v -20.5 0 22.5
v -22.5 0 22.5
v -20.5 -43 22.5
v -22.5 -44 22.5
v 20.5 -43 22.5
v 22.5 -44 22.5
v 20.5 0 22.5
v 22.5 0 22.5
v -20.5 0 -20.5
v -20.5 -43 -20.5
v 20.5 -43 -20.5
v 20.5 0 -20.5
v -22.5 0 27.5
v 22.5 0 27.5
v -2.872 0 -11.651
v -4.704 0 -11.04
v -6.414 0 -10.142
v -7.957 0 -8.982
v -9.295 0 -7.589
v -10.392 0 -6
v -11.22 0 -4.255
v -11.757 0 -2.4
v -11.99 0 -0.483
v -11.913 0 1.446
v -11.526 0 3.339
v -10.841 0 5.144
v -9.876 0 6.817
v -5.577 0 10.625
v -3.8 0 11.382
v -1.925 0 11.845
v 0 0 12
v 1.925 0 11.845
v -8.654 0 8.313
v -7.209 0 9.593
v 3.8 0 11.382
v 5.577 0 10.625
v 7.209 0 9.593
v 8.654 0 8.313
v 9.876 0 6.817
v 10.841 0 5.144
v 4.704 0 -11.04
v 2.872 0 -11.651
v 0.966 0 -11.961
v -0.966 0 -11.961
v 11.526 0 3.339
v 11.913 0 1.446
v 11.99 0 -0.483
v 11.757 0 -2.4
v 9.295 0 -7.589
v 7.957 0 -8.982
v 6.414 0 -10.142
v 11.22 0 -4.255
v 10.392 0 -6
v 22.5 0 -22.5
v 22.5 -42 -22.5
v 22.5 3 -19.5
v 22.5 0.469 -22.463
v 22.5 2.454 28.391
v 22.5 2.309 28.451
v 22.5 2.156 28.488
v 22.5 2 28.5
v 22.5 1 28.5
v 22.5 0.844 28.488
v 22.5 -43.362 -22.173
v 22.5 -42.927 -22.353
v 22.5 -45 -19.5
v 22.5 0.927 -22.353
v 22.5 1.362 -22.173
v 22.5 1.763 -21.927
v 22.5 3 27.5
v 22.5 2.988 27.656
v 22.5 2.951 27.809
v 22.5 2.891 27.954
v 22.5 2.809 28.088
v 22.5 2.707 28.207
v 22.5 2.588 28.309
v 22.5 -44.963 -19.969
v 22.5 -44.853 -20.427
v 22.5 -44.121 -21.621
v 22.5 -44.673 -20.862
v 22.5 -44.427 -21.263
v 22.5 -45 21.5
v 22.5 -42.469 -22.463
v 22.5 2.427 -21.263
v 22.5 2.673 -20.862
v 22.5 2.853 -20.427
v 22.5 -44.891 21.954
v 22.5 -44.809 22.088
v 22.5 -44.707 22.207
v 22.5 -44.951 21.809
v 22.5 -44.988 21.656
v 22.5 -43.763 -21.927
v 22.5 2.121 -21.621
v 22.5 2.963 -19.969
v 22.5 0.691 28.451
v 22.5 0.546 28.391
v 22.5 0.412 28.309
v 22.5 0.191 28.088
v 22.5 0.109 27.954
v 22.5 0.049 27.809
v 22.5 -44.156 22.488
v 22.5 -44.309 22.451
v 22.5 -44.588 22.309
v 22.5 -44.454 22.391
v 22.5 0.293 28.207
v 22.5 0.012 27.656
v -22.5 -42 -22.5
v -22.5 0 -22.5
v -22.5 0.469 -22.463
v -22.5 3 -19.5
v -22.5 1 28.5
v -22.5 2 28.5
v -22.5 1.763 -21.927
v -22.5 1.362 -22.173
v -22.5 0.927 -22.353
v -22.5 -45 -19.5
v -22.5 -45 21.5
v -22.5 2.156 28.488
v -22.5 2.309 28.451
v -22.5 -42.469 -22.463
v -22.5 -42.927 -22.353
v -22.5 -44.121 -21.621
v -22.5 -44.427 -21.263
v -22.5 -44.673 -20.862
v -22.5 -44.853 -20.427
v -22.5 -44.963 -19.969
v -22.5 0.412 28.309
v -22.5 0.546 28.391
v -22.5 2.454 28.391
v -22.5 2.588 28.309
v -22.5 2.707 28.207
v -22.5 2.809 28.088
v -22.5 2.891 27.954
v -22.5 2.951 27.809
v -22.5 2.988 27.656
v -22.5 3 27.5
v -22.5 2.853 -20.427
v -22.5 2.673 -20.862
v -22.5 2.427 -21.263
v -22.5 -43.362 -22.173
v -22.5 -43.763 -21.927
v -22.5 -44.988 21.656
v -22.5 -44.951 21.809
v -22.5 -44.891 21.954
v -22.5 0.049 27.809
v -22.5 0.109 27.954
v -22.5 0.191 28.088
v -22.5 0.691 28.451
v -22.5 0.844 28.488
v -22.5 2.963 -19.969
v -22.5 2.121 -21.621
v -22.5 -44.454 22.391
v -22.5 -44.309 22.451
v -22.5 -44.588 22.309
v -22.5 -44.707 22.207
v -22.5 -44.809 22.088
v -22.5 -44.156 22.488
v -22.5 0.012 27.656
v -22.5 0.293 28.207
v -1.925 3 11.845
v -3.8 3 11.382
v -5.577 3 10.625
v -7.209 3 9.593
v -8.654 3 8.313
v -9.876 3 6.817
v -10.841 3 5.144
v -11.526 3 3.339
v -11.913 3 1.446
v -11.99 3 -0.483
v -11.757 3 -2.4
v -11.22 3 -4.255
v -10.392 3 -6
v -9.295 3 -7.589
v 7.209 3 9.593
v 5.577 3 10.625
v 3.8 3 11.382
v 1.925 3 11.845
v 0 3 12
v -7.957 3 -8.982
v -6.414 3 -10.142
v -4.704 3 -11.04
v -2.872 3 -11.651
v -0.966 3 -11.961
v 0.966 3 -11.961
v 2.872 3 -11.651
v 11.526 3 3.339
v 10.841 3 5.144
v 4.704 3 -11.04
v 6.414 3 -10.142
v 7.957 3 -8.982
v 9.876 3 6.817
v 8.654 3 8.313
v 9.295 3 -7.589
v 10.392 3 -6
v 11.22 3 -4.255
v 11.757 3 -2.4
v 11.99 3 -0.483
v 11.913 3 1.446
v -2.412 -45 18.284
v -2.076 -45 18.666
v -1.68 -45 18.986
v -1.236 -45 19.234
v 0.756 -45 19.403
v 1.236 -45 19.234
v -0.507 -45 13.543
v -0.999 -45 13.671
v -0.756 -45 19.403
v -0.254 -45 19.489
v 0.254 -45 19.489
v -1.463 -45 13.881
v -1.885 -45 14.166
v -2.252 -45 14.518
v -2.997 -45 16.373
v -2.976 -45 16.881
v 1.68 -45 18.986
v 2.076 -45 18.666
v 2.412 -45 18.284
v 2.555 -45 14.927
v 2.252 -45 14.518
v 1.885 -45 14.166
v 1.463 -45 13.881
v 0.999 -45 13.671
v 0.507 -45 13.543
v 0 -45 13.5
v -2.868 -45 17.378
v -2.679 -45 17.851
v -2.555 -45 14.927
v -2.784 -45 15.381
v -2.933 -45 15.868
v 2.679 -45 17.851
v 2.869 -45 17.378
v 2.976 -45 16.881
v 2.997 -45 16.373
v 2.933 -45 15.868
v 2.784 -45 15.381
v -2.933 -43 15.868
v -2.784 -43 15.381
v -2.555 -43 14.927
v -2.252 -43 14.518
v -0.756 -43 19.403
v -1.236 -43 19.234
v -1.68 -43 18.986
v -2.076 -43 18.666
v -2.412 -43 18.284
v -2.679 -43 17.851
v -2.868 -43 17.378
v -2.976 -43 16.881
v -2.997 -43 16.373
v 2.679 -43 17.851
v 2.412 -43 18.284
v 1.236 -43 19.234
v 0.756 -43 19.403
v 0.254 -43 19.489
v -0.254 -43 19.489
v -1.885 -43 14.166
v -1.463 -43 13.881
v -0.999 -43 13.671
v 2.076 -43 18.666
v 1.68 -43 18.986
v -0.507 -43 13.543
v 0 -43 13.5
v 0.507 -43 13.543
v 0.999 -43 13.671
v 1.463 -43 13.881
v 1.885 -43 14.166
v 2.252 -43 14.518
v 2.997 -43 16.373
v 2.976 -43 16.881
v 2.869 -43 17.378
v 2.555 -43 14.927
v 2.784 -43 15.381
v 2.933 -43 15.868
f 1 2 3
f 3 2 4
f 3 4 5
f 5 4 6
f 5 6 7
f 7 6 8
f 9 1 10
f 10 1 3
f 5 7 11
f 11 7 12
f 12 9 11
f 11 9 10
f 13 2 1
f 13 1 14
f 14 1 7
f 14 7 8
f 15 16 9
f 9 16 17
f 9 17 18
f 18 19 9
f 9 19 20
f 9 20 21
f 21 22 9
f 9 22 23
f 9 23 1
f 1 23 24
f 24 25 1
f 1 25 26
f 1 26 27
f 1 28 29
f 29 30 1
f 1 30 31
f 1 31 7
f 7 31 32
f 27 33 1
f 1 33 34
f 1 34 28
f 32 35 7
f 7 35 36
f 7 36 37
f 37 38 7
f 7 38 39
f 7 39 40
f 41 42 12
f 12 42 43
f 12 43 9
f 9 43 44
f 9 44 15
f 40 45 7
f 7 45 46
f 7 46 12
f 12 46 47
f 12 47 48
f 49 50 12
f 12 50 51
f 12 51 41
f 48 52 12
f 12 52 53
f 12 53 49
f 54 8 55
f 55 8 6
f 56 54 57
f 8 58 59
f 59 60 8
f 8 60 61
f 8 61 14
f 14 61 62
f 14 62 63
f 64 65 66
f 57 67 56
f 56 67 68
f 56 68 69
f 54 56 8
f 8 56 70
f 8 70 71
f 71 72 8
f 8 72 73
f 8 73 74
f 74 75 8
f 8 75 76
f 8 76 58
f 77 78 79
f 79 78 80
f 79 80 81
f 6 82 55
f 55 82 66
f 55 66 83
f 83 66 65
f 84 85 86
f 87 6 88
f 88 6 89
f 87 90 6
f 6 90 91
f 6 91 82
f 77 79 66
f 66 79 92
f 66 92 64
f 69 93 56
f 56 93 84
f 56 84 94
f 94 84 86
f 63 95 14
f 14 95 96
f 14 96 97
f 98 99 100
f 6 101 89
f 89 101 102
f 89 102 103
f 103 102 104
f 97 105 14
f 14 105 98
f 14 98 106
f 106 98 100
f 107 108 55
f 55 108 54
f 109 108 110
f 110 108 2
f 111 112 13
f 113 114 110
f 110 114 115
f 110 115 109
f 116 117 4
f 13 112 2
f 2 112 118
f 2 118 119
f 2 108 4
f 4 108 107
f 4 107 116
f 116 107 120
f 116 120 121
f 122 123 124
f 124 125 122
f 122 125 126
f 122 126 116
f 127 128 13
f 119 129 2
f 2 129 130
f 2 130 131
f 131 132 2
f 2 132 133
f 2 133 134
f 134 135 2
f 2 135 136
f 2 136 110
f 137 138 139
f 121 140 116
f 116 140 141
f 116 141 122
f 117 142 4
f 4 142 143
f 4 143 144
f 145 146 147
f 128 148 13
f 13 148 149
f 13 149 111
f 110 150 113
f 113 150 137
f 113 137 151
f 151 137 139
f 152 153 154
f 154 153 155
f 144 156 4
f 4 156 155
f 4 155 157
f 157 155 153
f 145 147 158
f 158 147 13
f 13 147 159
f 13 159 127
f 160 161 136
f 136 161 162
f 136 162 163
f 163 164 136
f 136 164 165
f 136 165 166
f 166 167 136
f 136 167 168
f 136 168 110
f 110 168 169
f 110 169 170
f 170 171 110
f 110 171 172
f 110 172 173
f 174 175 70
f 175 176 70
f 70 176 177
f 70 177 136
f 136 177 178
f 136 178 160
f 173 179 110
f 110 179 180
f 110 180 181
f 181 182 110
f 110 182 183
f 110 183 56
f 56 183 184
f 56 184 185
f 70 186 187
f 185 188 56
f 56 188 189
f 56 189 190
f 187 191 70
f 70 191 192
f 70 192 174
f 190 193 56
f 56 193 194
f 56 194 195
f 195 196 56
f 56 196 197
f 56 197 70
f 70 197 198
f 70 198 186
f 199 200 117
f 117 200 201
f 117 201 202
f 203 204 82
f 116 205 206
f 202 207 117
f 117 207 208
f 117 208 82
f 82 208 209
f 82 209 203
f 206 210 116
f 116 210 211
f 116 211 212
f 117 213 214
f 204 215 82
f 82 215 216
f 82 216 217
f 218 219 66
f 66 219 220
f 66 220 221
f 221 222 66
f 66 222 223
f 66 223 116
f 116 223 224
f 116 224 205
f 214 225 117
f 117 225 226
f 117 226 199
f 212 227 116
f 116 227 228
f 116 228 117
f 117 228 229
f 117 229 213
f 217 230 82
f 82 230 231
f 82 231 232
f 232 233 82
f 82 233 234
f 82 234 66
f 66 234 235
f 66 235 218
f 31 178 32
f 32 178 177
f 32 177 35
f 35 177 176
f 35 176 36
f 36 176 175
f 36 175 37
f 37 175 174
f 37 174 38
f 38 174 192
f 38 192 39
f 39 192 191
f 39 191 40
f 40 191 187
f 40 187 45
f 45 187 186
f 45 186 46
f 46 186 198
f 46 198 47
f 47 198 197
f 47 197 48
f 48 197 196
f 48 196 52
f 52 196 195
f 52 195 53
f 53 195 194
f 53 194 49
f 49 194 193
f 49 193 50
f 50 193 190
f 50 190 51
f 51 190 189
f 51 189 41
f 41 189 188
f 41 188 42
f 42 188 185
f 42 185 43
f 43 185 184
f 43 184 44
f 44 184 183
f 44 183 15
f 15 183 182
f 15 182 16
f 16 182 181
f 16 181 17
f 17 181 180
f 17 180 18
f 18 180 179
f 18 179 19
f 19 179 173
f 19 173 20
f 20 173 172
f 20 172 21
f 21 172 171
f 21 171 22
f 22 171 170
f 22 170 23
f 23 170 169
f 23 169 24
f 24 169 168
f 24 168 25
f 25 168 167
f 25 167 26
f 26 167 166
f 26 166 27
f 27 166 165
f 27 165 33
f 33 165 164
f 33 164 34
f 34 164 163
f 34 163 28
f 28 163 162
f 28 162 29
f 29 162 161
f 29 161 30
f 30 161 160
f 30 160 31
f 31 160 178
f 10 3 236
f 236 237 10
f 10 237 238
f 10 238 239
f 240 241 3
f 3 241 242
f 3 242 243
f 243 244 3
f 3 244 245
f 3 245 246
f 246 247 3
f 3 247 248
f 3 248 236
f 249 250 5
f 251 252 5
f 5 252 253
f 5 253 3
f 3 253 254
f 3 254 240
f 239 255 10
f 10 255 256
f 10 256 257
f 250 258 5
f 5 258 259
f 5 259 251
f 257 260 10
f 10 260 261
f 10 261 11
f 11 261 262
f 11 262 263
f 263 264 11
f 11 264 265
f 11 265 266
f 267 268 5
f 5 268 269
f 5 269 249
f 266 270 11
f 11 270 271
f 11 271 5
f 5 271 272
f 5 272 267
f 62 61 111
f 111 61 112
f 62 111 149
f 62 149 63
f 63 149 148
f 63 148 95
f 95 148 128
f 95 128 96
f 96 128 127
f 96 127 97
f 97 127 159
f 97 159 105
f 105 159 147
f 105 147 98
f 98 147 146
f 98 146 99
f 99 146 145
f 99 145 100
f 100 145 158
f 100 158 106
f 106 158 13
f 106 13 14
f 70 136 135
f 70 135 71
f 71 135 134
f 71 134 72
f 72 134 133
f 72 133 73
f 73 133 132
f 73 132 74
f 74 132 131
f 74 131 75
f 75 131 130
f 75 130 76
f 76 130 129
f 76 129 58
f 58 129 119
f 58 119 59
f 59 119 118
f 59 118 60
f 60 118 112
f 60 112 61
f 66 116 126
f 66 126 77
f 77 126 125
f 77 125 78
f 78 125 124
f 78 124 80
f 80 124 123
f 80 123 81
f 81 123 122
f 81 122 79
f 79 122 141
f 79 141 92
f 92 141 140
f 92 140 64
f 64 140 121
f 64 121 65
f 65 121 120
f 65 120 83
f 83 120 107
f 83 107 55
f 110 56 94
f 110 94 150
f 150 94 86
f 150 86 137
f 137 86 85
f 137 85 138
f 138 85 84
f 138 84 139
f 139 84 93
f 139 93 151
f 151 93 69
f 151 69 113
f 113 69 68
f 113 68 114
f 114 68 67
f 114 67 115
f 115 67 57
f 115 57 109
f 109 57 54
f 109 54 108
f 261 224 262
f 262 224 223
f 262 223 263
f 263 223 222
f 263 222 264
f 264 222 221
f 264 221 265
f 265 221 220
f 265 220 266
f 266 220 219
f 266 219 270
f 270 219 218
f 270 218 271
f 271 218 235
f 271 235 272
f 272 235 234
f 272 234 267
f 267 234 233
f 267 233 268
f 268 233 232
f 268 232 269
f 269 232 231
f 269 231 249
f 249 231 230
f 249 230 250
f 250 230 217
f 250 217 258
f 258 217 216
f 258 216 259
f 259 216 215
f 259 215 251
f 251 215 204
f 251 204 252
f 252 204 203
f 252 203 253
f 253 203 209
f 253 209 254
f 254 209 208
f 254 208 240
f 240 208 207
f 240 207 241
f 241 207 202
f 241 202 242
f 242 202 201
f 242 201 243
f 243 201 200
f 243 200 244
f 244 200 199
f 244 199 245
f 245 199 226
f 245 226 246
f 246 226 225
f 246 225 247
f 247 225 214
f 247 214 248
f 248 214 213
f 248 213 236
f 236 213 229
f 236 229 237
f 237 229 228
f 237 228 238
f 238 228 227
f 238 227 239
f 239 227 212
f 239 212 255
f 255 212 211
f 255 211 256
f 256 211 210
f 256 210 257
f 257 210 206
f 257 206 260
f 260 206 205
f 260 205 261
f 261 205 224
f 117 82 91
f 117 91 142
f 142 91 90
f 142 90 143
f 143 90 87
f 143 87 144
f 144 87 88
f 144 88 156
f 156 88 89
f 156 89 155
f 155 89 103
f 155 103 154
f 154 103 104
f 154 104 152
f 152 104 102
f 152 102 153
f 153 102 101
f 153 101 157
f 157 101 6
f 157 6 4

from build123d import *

# Parameters (mm, degrees)
SKETCH_1_W          = 45
SKETCH_1_H          = 45
EXTRUDE_1_DEPTH     = 3
SKETCH_2_R          = 12
CUT_EXTRUDE_1_DEPTH = 3
SKETCH_3_W          = 2
SKETCH_3_H          = 45
EXTRUDE_3_DEPTH     = 45
SKETCH_4_R          = 12
CUT_EXTRUDE_2_DEPTH = 3
SKETCH_5_W          = 41
SKETCH_5_H          = 2
EXTRUDE_4_DEPTH     = 45
SKETCH_6_W          = 41
SKETCH_6_H          = 2
EXTRUDE_5_DEPTH     = 43
SKETCH_8_W          = 45
SKETCH_8_H          = 3
EXTRUDE_6_DEPTH     = 6
FILLET_3_R          = 1
FILLET_4_R          = 3
SKETCH_9_R          = 3
CUT_EXTRUDE_3_DEPTH = 2
FILLET_8_R          = 1


with BuildPart() as part:
    # Эскиз1 → Бобышка-Вытянуть1 (new body)
    with BuildSketch(Plane(origin=(0, 0, 0), x_dir=(1, 0, 0), z_dir=(0, 1, 0))):
        Rectangle(SKETCH_1_W, SKETCH_1_H)
    extrude_1 = extrude(amount=EXTRUDE_1_DEPTH)

    # Эскиз2 → Вырез-Вытянуть1 (cut)
    with BuildSketch(Plane(origin=(0, 3, 0), x_dir=(1, 0, 0), z_dir=(0, 1, 0))):
        Circle(SKETCH_2_R)
    extrude(amount=-CUT_EXTRUDE_1_DEPTH, mode=Mode.SUBTRACT)

    # Эскиз3 → Бобышка-Вытянуть3 (add)
    with BuildSketch(Plane.XZ):
        with Locations((-21.5, 0)):
            Rectangle(SKETCH_3_W, SKETCH_3_H)
    extrude_3 = extrude(amount=EXTRUDE_3_DEPTH)

    # Зеркальное отражение3: Бобышка-Вытянуть1, Бобышка-Вытянуть3 across plane
    add(extrude_1.mirror(Plane.ZY))
    add(extrude_3.mirror(Plane.ZY))

    # Эскиз4 → Вырез-Вытянуть2 (cut)
    with BuildSketch(Plane(origin=(0, 3, 0), x_dir=(1, 0, 0), z_dir=(0, 1, 0))):
        Circle(SKETCH_4_R)
    extrude(amount=-CUT_EXTRUDE_2_DEPTH, mode=Mode.SUBTRACT)

    # Эскиз5 → Бобышка-Вытянуть4 (add)
    with BuildSketch(Plane.XZ):
        with Locations((0, -21.5)):
            Rectangle(SKETCH_5_W, SKETCH_5_H)
    extrude(amount=EXTRUDE_4_DEPTH)

    # Эскиз6 → Бобышка-Вытянуть5 (add)
    with BuildSketch(Plane.XY.offset(-20.5)):
        with Locations((0, -44)):
            Rectangle(SKETCH_6_W, SKETCH_6_H)
    extrude(amount=EXTRUDE_5_DEPTH)

    # Эскиз8 → Бобышка-Вытянуть6 (add)
    with BuildSketch(Plane.XY.offset(22.5)):
        with Locations((0, 1.5)):
            Rectangle(SKETCH_8_W, SKETCH_8_H)
    extrude(amount=EXTRUDE_6_DEPTH)

    # Скругление3
    fillet_3_edges = [part.edges().sort_by_distance(p)[0] for p in [
        (0, 0, 28.5),
        (0, 3, 28.5),
    ]]
    fillet(fillet_3_edges, radius=FILLET_3_R)

    # Скругление4
    fillet_4_edges = [part.edges().sort_by_distance(p)[0] for p in [
        (0, -45, -22.5),
        (0, 3, -22.5),
    ]]
    fillet(fillet_4_edges, radius=FILLET_4_R)

    # Эскиз9 → Вырез-Вытянуть3 (cut)
    with BuildSketch(Plane.XZ.offset(45)):
        with Locations((0, 16.5)):
            Circle(SKETCH_9_R)
    extrude(amount=-CUT_EXTRUDE_3_DEPTH, mode=Mode.SUBTRACT)

    # Скругление8
    fillet_8_edges = [part.edges().sort_by_distance(p)[0] for p in [
        (0, -45, 22.5),
    ]]
    fillet(fillet_8_edges, radius=FILLET_8_R)


solid = part.part
